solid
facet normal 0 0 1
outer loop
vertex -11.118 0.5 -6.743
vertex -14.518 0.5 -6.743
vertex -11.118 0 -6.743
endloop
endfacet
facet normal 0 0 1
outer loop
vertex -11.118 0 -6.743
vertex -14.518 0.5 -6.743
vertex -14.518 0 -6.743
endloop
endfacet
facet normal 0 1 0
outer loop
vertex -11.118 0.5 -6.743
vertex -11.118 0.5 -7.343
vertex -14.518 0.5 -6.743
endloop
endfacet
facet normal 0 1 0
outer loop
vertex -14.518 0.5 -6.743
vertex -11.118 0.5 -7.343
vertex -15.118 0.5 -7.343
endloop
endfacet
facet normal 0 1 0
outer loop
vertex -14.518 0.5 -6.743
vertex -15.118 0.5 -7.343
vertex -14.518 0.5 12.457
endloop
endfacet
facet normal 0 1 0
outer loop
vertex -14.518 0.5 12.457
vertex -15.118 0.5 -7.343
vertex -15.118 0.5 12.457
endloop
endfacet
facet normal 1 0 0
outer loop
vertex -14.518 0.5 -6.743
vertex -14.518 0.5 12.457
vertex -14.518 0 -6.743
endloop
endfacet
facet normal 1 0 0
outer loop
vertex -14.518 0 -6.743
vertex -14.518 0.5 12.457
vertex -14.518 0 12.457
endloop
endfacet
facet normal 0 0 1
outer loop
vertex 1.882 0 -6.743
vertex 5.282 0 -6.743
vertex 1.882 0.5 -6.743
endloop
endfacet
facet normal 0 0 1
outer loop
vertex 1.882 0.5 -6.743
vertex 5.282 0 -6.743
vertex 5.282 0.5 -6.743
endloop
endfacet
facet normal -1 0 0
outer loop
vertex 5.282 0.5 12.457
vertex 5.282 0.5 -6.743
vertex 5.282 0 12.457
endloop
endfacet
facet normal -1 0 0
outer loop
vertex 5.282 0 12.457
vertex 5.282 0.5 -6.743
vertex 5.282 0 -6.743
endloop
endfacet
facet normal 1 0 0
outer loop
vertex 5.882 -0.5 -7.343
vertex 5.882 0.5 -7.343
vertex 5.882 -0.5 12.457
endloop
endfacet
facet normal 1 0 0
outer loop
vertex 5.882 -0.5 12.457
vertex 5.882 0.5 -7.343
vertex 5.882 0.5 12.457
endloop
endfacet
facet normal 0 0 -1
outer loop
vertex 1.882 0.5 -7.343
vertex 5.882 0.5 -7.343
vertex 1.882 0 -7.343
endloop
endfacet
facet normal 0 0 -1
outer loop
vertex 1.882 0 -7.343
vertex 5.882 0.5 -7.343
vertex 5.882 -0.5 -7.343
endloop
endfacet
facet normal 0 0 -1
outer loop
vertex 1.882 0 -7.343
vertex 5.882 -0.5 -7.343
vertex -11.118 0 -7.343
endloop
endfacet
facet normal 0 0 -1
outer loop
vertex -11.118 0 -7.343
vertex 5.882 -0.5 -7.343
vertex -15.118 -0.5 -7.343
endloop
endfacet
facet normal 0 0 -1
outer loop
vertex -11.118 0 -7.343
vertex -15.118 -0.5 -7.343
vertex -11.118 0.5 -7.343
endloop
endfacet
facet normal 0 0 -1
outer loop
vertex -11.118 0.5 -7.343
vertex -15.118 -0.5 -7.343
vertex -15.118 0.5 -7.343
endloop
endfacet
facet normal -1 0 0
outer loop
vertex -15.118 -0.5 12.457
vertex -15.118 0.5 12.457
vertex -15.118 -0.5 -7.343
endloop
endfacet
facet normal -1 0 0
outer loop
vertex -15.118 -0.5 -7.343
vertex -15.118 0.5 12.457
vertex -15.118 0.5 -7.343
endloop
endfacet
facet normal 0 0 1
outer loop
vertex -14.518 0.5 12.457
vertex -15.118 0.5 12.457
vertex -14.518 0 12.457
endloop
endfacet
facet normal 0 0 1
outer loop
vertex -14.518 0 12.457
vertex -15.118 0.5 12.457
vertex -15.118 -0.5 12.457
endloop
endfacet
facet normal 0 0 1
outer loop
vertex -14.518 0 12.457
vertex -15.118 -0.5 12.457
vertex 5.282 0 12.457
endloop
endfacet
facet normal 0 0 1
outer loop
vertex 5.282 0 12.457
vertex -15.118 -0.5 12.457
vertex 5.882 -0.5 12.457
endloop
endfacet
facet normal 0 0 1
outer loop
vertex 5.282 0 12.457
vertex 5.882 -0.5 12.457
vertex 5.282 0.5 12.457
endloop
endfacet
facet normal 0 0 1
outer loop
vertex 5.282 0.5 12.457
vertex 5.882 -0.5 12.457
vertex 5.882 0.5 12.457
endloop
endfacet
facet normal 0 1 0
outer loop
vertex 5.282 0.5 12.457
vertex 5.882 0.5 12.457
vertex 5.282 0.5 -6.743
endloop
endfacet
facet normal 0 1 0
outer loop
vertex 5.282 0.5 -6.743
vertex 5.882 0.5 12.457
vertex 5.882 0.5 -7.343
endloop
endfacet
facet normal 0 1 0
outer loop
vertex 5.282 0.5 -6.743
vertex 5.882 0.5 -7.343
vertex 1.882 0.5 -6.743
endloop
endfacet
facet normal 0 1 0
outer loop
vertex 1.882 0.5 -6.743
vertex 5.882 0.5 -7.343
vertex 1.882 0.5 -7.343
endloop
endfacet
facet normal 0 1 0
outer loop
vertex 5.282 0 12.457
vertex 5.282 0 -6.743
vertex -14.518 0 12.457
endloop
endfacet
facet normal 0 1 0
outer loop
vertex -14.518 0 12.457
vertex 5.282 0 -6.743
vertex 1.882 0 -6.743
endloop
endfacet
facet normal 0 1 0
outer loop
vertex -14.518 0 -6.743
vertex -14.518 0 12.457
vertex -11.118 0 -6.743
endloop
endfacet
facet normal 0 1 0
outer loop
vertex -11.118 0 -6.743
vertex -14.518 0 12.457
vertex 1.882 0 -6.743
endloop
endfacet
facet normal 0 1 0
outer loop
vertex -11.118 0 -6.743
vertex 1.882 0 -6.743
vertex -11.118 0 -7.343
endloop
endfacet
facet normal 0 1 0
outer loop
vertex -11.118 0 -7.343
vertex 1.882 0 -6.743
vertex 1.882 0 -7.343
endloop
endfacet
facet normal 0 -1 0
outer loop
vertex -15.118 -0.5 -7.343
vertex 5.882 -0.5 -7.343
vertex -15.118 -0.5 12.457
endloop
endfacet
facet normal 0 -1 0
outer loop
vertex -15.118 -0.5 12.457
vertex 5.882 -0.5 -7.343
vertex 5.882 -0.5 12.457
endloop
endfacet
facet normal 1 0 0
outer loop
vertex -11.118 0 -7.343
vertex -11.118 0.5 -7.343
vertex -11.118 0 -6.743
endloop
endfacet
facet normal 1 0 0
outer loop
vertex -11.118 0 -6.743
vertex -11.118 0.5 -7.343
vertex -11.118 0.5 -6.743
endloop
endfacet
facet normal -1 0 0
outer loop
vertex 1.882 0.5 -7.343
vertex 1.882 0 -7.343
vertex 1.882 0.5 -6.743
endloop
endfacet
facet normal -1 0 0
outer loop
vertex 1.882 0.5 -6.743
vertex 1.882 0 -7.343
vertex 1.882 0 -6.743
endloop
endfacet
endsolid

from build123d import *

# Parameters (mm, degrees)
BOSS_EXTRUDE1_DEPTH = 0.5
SKETCH2_W           = 21
SKETCH2_H           = 19.8
BOSS_EXTRUDE2_DEPTH = 0.5
SKETCH3_W           = 13
SKETCH3_H           = 0.5
CUT_EXTRUDE1_DEPTH  = 25.442919676


with BuildPart() as part:
    # Sketch1 → Boss-Extrude1 (new body)
    with BuildSketch(Plane(origin=(0, 0, 0), x_dir=(1, 0, 0), z_dir=(0, 1, 0))):
        Polygon((-15.118410045, 7.342838361), (-15.118410045, -12.457161639), (-14.518410045, -12.457161639), (-14.518410045, 6.742838361), (5.281589955, 6.742838361), (5.281589955, -12.457161639), (5.881589955, -12.457161639), (5.881589955, 7.342838361), align=None)
    extrude(amount=BOSS_EXTRUDE1_DEPTH)

    # Sketch2 → Boss-Extrude2 (add)
    with BuildSketch(Plane.XZ):
        with Locations((-4.618410045, 2.557161639)):
            Rectangle(SKETCH2_W, SKETCH2_H)
    extrude(amount=BOSS_EXTRUDE2_DEPTH)

    # Sketch3 → Cut-Extrude1 (cut, through all)
    with BuildSketch(Plane.XY.offset(-6.742838361)):
        with Locations((-4.618410045, 0.25)):
            Rectangle(SKETCH3_W, SKETCH3_H)
    extrude(amount=-CUT_EXTRUDE1_DEPTH, mode=Mode.SUBTRACT)


solid = part.part
